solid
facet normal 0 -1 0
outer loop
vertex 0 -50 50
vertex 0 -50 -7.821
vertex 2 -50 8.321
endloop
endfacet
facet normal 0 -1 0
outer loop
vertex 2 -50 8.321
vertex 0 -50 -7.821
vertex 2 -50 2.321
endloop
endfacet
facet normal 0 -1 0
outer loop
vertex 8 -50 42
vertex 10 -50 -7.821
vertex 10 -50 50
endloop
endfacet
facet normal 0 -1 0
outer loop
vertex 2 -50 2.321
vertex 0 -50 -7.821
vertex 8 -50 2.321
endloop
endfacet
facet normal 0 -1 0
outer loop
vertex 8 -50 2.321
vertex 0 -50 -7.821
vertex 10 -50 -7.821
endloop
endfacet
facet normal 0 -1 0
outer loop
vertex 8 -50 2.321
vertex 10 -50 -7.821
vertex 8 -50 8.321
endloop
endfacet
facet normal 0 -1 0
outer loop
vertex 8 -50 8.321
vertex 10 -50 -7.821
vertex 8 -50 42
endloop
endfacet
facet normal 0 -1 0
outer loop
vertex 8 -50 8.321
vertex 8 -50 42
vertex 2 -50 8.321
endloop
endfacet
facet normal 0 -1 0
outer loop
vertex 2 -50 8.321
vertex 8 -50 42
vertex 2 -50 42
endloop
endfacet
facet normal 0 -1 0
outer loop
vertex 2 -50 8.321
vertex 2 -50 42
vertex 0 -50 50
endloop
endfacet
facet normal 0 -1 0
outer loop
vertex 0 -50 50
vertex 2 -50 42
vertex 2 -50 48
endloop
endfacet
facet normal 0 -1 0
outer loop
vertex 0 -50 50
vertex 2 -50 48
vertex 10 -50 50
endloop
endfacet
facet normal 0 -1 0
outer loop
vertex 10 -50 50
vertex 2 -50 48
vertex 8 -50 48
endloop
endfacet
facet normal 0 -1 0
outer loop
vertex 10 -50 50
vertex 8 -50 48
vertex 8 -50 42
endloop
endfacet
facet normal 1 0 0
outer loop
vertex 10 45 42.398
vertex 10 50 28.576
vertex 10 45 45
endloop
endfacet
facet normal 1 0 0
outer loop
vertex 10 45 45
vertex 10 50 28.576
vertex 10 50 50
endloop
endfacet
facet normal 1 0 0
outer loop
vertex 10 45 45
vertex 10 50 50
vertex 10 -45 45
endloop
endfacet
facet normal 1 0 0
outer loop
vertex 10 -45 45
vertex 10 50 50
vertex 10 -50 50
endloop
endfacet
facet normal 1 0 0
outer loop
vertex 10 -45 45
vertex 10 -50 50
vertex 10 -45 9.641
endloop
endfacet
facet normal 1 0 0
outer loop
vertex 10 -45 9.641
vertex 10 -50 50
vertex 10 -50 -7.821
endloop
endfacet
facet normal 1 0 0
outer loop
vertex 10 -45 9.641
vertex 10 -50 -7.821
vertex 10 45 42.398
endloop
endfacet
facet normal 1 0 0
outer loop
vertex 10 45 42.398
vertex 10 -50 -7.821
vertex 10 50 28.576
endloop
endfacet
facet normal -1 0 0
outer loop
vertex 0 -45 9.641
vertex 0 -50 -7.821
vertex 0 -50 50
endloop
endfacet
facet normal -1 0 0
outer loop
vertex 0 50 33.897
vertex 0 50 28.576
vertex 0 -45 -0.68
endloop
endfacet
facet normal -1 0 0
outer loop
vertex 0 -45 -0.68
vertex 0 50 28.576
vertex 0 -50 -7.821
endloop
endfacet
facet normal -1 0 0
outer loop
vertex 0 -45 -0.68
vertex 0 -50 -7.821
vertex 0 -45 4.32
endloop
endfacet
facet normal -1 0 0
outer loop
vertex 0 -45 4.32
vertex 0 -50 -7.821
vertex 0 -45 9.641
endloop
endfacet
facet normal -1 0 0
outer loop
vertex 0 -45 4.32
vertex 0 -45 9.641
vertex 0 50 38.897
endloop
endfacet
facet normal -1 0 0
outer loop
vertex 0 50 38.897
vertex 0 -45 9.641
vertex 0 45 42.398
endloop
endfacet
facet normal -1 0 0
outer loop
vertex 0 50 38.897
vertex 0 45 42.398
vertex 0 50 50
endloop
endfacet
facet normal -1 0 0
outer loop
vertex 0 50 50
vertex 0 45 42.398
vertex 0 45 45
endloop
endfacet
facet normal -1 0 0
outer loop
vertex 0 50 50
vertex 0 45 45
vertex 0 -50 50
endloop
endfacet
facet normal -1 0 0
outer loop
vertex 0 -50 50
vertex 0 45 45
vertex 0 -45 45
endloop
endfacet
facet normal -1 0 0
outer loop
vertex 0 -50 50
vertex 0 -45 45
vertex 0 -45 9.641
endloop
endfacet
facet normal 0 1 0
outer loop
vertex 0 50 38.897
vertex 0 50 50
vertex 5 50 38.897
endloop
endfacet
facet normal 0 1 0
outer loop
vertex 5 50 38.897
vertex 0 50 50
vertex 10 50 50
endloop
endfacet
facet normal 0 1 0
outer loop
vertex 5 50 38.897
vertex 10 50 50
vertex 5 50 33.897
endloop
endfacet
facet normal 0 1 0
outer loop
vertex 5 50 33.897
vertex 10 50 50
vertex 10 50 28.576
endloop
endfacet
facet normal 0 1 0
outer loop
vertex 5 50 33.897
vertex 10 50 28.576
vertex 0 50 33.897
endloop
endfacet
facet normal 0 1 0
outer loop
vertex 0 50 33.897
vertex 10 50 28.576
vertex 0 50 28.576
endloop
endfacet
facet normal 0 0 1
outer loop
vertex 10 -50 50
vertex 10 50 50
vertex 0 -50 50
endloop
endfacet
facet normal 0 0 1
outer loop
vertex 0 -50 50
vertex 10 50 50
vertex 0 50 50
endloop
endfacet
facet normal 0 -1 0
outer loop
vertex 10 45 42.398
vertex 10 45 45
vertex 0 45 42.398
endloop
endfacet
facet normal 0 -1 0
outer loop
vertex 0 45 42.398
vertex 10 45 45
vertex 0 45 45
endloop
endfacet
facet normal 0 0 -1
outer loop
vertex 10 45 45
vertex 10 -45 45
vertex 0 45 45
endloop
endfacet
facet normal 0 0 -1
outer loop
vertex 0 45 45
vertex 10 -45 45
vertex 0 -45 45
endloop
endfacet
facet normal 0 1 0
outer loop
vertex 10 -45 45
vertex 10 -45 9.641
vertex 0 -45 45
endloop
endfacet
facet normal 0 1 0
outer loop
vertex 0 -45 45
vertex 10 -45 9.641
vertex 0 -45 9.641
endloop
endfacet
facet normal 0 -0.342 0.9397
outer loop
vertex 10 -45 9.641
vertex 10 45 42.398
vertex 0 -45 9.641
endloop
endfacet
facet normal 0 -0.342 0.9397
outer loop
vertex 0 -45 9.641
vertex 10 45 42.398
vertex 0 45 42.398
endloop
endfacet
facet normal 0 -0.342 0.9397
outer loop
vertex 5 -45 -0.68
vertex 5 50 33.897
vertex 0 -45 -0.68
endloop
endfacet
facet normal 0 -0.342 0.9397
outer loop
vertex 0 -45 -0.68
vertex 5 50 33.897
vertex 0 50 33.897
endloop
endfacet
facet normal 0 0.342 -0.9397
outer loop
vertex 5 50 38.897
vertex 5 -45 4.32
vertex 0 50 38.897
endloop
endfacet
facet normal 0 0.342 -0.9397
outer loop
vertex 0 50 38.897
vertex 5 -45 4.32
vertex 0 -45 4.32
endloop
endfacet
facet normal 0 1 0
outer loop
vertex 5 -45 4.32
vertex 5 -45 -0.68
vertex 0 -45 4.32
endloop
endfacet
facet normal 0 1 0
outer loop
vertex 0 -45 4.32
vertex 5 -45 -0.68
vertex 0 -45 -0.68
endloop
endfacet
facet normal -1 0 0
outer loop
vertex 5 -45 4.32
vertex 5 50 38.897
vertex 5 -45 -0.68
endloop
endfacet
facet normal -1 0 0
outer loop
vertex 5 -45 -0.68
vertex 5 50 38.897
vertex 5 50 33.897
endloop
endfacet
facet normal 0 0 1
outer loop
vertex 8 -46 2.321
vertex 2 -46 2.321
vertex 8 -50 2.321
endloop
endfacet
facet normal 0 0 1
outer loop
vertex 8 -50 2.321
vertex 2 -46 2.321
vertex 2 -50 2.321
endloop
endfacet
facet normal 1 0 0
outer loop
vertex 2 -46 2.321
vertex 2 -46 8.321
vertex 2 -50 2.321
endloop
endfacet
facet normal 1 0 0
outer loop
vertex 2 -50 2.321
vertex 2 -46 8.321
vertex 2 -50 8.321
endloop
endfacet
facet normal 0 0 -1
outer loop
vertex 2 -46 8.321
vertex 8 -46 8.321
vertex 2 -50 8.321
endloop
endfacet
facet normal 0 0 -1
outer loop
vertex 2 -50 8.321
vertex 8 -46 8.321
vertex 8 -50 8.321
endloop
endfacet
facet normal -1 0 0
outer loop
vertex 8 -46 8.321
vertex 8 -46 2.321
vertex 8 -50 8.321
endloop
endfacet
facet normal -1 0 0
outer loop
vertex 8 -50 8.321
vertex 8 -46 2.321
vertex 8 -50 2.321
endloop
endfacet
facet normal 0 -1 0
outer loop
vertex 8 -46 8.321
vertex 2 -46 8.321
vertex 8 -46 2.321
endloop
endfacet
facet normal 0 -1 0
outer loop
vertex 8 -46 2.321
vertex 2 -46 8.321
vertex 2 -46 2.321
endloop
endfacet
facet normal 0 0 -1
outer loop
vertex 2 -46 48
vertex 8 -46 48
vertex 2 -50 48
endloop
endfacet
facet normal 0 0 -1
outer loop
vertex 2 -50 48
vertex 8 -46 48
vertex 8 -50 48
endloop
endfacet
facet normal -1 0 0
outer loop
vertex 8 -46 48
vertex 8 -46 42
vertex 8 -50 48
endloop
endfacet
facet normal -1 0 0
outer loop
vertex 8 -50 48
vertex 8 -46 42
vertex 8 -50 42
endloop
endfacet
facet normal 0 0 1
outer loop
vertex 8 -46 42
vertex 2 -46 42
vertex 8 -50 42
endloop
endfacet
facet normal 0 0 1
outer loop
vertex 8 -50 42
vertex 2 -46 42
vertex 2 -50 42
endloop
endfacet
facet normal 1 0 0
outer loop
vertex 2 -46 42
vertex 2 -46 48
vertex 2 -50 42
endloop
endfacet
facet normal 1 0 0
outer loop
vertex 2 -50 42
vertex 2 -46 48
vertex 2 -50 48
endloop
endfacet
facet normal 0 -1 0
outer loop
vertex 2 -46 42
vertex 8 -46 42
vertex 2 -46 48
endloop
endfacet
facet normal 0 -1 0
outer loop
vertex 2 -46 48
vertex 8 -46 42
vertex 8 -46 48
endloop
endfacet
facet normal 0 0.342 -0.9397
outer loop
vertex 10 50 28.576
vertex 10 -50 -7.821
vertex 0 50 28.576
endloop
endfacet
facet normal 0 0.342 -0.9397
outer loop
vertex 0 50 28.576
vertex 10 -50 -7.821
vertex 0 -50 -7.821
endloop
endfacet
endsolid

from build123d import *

# Parameters (mm, degrees)
SKETCH1_W           = 100
SKETCH1_H           = 100
BOSS_EXTRUDE1_DEPTH = 10
CUT_EXTRUDE1_DEPTH  = 10
CUT_EXTRUDE2_DEPTH  = 5
SKETCH4_W           = 6
SKETCH4_H           = 6
SKETCH4_W_2         = 3
SKETCH4_H_2         = 3
CUT_EXTRUDE3_DEPTH  = 4
CUT_EXTRUDE4_DEPTH  = 10


with BuildPart() as part:
    # Sketch1 → Boss-Extrude1 (new body)
    with BuildSketch(Plane(origin=(0, 0, 0), x_dir=(0, 0, -1), z_dir=(1, 0, 0))):
        Rectangle(SKETCH1_W, SKETCH1_H)
    extrude(amount=BOSS_EXTRUDE1_DEPTH)

    # Sketch2 → Cut-Extrude1 (cut)
    with BuildSketch(Plane.ZY):
        Polygon((42.398061118, 45), (45, 45), (45, -45), (9.640740034, -45), align=None)
    extrude(amount=-CUT_EXTRUDE1_DEPTH, mode=Mode.SUBTRACT)

    # Sketch2<3> → Cut-Extrude2 (cut)
    with BuildSketch(Plane.ZY):
        Polygon((36.397023427, 50), (33.897023427, 50), (-0.680148829, -45), (4.319851171, -45), (38.897023427, 50), align=None)
    extrude(amount=-CUT_EXTRUDE2_DEPTH, mode=Mode.SUBTRACT)

    # Sketch4 → Cut-Extrude3 (cut)
    with BuildSketch(Plane.XZ.offset(50)):
        with Locations((5, -45)):
            Rectangle(SKETCH4_W, SKETCH4_H)
        with Locations((5, 5.32088886)):
            Rectangle(SKETCH4_W, SKETCH4_H)
        Polygon((8, 42), (8, 45), (5, 45), (5, 48), (2, 48), (2, 42), align=None)
        with Locations((6.5, 46.5)):
            Rectangle(SKETCH4_W_2, SKETCH4_H_2)
        with Locations((6.5, 3.82088886)):
            Rectangle(SKETCH4_W_2, SKETCH4_H_2)
        with Locations((6.5, -46.5)):
            Rectangle(SKETCH4_W_2, SKETCH4_H_2)
    extrude(amount=-CUT_EXTRUDE3_DEPTH, mode=Mode.SUBTRACT)

    # Sketch5 → Cut-Extrude4 (cut)
    with BuildSketch(Plane.ZY):
        Polygon((28.576134564, 50), (-50, 50), (-50, -50), (-7.820888862, -50), (-6.001037691, -45), (26.756283393, 45), align=None)
    extrude(amount=-CUT_EXTRUDE4_DEPTH, mode=Mode.SUBTRACT)


solid = part.part
